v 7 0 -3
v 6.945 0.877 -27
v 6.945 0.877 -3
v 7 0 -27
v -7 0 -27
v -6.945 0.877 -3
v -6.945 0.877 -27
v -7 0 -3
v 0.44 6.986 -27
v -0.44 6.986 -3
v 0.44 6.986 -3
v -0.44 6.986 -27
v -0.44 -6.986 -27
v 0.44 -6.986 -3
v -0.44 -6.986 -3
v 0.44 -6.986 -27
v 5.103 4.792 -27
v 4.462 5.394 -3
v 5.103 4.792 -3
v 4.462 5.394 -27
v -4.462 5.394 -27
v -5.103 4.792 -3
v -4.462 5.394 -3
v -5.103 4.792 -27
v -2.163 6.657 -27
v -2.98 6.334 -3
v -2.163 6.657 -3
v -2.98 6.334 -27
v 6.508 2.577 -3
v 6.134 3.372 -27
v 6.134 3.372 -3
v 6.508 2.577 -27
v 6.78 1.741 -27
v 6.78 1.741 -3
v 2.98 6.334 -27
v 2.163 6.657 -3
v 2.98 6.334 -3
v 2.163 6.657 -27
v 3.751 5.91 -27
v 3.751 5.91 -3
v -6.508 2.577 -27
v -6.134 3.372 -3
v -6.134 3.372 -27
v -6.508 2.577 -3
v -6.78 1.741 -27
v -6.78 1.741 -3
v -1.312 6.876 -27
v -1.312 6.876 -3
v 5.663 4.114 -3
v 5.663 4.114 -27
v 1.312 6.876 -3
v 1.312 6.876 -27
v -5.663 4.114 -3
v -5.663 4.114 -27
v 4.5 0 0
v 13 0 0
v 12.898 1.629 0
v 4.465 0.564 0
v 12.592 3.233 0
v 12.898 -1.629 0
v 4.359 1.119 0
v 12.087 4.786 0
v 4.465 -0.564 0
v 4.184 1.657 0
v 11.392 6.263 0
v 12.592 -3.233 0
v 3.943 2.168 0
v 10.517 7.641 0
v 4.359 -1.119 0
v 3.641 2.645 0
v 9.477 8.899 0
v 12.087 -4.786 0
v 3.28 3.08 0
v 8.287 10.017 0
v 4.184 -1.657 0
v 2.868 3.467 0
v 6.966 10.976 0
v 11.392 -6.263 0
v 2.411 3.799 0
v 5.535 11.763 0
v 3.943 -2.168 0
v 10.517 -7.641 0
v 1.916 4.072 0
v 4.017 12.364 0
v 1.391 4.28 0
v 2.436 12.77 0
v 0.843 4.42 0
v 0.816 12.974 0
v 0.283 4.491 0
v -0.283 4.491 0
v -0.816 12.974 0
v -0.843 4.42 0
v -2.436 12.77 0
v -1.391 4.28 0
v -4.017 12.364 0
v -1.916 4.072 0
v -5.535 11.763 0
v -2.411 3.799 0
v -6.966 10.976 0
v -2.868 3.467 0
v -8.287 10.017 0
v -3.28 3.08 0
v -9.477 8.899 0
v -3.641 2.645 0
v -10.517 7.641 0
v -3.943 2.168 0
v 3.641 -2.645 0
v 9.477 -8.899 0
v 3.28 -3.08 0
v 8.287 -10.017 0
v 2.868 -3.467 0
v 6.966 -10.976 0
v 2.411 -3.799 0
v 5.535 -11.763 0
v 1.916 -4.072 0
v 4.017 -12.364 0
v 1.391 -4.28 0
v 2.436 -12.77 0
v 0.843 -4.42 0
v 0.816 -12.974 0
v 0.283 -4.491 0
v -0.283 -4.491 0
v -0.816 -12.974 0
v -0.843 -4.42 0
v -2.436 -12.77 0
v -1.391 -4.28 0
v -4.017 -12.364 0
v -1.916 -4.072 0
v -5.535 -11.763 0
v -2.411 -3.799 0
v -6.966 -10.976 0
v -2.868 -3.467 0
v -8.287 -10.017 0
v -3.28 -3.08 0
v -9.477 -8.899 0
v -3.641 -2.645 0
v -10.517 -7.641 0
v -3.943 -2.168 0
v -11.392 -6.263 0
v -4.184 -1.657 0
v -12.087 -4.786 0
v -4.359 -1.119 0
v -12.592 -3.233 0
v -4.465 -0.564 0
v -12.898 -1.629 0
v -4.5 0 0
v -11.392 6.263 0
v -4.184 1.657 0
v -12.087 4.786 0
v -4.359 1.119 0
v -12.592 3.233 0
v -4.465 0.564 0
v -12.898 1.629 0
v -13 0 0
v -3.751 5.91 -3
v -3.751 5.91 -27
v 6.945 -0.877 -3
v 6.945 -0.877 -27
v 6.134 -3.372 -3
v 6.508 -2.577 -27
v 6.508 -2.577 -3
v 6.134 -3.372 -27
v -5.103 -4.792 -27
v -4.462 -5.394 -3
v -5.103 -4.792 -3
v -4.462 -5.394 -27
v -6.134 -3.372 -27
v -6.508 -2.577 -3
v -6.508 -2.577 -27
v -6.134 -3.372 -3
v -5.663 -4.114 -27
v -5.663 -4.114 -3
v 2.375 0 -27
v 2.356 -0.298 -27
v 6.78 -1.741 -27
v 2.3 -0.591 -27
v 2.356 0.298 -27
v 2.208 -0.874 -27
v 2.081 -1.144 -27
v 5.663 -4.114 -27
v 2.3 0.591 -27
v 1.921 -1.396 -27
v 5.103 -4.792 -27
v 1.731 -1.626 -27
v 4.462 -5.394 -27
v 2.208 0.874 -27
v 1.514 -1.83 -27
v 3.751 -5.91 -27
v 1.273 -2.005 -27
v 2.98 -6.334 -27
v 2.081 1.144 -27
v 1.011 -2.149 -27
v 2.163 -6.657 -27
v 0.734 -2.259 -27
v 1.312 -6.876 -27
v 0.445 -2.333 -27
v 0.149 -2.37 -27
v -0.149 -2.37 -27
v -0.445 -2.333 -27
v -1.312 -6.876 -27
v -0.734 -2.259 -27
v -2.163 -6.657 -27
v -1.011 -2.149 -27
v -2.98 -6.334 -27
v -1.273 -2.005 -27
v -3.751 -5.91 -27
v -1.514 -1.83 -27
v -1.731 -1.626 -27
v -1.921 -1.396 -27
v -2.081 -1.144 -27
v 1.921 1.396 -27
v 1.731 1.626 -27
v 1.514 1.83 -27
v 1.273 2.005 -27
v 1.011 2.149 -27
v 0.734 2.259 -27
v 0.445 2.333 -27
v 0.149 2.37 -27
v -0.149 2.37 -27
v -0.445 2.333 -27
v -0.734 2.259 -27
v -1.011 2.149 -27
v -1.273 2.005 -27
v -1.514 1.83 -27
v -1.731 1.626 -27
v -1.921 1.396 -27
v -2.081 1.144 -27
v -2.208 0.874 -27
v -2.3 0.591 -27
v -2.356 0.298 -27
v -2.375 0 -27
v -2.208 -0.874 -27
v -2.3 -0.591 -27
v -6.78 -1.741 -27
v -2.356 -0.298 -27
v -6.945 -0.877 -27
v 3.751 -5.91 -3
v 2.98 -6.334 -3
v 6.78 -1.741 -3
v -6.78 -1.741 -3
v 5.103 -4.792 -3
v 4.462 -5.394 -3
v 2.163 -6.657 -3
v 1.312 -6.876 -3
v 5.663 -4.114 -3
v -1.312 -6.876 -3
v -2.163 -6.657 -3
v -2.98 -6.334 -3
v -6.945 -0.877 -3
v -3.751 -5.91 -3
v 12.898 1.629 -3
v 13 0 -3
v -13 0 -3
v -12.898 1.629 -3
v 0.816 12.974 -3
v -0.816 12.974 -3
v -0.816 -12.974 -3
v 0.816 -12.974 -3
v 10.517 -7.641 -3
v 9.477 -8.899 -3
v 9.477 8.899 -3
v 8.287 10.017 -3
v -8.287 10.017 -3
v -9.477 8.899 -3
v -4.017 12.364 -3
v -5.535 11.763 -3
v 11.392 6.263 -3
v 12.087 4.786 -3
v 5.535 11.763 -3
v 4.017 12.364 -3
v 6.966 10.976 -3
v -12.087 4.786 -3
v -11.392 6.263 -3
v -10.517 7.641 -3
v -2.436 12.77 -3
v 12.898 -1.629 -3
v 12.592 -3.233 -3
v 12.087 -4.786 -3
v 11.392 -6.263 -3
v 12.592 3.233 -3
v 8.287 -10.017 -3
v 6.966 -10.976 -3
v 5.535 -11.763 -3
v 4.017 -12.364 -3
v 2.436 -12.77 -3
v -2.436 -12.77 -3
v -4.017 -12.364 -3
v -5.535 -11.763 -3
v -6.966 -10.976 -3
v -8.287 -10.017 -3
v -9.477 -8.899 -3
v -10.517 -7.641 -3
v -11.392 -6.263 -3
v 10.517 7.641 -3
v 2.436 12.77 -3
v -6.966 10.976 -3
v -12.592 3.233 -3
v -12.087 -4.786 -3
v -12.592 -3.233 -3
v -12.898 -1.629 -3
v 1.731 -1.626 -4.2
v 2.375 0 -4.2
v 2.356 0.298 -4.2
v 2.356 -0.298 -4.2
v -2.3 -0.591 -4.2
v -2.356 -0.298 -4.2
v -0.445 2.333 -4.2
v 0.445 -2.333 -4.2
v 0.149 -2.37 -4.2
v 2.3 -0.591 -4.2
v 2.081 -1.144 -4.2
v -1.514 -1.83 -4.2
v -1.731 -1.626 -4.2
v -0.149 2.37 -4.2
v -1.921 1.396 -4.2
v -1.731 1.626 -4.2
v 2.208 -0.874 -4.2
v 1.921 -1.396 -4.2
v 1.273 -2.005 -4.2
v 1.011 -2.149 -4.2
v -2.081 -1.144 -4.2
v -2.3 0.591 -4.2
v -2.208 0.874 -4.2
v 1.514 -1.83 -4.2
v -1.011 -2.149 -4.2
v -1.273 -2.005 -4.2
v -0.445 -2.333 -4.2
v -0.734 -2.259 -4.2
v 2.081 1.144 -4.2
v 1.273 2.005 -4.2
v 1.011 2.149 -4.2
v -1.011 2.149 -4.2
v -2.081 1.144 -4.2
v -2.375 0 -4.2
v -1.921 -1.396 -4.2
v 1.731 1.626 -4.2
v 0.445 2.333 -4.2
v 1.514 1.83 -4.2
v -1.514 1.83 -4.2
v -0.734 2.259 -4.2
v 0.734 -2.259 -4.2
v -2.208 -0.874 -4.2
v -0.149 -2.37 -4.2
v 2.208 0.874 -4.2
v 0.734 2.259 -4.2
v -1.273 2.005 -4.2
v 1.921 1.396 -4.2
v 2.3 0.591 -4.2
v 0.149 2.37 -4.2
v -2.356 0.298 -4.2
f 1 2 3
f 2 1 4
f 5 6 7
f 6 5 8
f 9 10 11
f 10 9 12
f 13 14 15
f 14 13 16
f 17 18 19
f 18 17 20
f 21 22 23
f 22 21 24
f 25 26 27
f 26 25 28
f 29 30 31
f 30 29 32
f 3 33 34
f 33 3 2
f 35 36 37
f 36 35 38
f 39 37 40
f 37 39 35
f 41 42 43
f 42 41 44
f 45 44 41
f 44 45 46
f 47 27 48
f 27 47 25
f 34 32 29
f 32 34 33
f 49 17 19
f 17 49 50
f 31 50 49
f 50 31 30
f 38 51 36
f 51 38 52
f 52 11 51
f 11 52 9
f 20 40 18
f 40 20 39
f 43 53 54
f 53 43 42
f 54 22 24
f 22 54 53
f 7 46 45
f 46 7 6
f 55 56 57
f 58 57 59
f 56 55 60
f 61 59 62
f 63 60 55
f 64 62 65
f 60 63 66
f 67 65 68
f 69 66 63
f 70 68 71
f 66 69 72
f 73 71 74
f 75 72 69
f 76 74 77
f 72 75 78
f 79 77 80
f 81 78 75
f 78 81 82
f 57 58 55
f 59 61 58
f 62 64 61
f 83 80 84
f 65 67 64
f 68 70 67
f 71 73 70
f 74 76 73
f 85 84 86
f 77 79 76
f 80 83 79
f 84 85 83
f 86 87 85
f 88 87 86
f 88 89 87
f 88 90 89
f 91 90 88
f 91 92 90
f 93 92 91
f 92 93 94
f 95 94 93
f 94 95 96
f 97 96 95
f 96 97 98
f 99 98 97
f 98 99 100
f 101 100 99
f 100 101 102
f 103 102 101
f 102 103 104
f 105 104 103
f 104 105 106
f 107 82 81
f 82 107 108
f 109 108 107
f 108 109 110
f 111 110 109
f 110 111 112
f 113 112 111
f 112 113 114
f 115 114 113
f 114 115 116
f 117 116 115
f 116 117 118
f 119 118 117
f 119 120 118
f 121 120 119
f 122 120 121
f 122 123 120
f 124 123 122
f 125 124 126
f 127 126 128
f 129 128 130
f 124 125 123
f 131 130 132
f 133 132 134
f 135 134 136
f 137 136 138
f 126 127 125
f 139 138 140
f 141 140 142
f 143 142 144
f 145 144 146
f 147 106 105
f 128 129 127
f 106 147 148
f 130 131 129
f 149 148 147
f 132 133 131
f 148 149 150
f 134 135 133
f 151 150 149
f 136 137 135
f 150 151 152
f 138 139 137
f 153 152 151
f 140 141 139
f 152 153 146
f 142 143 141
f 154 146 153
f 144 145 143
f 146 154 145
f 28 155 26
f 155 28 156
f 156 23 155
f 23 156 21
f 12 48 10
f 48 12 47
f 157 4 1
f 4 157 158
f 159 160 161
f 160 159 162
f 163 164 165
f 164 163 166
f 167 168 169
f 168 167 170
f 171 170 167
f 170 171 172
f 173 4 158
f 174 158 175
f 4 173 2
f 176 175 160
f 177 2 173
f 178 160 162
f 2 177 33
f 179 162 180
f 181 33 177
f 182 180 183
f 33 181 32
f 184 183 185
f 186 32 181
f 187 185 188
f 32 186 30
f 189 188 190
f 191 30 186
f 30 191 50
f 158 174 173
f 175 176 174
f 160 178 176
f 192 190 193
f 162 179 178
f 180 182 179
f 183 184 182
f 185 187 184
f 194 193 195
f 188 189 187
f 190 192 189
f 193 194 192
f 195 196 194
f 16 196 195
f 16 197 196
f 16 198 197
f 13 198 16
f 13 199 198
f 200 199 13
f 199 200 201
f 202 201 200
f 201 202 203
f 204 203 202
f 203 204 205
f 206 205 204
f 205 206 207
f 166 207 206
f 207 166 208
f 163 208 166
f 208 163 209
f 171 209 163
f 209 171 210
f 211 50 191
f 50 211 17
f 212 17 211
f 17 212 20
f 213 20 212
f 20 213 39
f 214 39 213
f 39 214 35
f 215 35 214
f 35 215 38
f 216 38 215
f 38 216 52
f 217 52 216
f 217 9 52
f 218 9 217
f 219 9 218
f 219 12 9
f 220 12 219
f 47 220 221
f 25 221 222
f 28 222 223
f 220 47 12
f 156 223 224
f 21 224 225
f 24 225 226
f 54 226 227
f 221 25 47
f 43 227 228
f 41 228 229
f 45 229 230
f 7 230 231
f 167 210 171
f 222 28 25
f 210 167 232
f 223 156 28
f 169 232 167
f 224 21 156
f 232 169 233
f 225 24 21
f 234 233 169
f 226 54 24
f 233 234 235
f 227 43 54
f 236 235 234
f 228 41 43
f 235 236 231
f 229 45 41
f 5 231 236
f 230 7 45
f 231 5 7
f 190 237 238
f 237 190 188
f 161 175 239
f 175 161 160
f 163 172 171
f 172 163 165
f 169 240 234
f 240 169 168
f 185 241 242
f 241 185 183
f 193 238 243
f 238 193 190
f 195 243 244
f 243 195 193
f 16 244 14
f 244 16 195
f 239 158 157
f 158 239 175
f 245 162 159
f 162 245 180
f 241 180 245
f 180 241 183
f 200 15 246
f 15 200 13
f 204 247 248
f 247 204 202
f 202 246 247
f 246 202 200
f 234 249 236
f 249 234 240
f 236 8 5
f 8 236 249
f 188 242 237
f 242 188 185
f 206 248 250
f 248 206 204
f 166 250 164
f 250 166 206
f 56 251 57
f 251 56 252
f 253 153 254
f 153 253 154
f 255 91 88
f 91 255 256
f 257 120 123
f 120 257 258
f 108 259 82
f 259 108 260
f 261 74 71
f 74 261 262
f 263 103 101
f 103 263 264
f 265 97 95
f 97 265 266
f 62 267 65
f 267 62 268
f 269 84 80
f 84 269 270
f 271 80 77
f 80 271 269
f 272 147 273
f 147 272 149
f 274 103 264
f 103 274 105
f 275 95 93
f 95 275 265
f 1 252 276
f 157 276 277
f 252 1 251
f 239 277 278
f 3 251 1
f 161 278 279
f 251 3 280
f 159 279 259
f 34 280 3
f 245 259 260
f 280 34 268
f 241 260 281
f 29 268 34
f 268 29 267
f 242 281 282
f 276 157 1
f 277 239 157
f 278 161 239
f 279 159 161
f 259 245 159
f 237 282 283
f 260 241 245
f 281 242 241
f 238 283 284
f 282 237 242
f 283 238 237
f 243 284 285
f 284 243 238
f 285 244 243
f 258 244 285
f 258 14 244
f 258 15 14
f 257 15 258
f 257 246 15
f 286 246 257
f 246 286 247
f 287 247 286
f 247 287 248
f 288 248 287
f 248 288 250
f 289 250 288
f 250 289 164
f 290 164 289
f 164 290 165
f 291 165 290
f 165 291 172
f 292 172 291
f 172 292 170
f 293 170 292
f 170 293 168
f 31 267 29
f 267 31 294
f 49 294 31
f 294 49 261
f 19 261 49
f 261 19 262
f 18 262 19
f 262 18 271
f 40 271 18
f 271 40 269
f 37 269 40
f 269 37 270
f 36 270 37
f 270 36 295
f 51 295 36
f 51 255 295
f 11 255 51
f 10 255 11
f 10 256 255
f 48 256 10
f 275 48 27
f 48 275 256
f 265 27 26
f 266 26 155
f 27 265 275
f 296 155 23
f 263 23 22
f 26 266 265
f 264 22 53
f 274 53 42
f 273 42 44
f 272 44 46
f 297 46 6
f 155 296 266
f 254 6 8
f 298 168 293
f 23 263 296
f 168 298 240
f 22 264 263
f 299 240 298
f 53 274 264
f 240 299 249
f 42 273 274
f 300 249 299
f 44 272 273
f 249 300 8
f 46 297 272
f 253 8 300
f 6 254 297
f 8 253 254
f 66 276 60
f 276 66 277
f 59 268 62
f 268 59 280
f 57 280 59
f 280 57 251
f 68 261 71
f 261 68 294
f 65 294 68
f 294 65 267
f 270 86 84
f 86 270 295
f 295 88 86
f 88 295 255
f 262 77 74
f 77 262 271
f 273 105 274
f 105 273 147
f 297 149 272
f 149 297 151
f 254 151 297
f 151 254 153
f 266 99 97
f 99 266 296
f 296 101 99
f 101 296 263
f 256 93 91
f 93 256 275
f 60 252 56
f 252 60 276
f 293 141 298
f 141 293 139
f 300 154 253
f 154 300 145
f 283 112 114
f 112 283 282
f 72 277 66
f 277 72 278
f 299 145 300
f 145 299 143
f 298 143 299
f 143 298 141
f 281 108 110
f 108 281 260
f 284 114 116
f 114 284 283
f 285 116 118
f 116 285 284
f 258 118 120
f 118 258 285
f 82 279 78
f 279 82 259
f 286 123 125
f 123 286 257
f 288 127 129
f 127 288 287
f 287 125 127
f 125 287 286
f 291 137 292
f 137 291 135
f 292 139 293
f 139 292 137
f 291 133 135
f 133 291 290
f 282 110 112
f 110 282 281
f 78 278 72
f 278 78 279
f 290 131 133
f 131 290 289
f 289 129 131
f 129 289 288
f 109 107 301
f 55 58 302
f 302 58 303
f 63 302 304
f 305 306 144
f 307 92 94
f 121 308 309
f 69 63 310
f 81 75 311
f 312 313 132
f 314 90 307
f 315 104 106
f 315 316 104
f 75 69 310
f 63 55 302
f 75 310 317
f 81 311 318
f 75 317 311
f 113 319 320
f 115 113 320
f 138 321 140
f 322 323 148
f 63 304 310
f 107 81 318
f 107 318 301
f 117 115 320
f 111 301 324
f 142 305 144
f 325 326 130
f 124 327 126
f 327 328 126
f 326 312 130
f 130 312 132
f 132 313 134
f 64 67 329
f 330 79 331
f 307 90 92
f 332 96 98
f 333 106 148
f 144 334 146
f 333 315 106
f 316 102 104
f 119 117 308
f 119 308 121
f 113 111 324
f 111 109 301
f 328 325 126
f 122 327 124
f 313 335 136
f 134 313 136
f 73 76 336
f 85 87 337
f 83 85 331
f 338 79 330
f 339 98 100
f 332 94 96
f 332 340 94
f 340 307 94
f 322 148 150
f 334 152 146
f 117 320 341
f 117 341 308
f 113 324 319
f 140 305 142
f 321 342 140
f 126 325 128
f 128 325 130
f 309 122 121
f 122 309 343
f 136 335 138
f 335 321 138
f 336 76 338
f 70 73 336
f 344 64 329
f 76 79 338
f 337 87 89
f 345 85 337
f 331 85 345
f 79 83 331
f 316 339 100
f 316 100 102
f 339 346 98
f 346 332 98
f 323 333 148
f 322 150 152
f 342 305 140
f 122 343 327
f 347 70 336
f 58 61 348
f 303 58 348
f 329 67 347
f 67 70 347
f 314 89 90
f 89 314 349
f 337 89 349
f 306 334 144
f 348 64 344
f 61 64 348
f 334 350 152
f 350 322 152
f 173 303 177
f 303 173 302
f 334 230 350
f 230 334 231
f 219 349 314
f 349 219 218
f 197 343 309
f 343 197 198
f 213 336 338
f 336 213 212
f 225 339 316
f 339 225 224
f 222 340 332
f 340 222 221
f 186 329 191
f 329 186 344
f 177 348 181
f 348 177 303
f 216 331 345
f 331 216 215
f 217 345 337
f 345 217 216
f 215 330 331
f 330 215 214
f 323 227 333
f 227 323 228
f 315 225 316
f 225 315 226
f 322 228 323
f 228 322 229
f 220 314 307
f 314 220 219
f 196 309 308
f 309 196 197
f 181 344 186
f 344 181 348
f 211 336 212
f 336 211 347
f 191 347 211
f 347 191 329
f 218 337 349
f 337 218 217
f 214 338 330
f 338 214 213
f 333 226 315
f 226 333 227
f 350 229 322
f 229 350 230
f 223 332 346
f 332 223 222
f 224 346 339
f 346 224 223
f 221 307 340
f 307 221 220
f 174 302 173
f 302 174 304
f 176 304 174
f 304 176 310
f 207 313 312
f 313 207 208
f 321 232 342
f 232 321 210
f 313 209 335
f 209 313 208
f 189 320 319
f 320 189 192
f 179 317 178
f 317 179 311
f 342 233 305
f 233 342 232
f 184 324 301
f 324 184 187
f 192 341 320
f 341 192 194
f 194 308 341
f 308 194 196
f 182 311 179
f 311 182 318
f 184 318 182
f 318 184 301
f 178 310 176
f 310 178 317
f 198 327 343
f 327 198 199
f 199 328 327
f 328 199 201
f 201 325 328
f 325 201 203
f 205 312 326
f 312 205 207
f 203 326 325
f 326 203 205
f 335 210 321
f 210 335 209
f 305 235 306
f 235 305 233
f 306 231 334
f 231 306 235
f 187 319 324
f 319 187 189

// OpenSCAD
$fn = 50;


difference() {
	union() {
		translate(v = [0, 0, -27.0000000000]) {
			cylinder(h = 27, r = 7.0000000000);
		}
		translate(v = [0, 0, -3.0000000000]) {
			cylinder(h = 3, r = 13.0000000000);
		}
	}
	union() {
		translate(v = [0, 0, 0]) {
			rotate(a = [0, 0, 0]) {
				difference() {
					union() {
						#translate(v = [0, 0, -27.0000000000]) {
							cylinder(h = 27, r = 2.2500000000);
						}
						#translate(v = [0, 0, -4.2000000000]) {
							cylinder(h = 4.2000000000, r = 7.0000000000, r1 = 2.3750000000, r2 = 4.5000000000);
						}
						#translate(v = [0, 0, -27.0000000000]) {
							cylinder(h = 27, r = 2.3750000000);
						}
						#translate(v = [0, 0, -27.0000000000]) {
							cylinder(h = 27, r = 2.2500000000);
						}
					}
					union();
				}
			}
		}
	}
}
